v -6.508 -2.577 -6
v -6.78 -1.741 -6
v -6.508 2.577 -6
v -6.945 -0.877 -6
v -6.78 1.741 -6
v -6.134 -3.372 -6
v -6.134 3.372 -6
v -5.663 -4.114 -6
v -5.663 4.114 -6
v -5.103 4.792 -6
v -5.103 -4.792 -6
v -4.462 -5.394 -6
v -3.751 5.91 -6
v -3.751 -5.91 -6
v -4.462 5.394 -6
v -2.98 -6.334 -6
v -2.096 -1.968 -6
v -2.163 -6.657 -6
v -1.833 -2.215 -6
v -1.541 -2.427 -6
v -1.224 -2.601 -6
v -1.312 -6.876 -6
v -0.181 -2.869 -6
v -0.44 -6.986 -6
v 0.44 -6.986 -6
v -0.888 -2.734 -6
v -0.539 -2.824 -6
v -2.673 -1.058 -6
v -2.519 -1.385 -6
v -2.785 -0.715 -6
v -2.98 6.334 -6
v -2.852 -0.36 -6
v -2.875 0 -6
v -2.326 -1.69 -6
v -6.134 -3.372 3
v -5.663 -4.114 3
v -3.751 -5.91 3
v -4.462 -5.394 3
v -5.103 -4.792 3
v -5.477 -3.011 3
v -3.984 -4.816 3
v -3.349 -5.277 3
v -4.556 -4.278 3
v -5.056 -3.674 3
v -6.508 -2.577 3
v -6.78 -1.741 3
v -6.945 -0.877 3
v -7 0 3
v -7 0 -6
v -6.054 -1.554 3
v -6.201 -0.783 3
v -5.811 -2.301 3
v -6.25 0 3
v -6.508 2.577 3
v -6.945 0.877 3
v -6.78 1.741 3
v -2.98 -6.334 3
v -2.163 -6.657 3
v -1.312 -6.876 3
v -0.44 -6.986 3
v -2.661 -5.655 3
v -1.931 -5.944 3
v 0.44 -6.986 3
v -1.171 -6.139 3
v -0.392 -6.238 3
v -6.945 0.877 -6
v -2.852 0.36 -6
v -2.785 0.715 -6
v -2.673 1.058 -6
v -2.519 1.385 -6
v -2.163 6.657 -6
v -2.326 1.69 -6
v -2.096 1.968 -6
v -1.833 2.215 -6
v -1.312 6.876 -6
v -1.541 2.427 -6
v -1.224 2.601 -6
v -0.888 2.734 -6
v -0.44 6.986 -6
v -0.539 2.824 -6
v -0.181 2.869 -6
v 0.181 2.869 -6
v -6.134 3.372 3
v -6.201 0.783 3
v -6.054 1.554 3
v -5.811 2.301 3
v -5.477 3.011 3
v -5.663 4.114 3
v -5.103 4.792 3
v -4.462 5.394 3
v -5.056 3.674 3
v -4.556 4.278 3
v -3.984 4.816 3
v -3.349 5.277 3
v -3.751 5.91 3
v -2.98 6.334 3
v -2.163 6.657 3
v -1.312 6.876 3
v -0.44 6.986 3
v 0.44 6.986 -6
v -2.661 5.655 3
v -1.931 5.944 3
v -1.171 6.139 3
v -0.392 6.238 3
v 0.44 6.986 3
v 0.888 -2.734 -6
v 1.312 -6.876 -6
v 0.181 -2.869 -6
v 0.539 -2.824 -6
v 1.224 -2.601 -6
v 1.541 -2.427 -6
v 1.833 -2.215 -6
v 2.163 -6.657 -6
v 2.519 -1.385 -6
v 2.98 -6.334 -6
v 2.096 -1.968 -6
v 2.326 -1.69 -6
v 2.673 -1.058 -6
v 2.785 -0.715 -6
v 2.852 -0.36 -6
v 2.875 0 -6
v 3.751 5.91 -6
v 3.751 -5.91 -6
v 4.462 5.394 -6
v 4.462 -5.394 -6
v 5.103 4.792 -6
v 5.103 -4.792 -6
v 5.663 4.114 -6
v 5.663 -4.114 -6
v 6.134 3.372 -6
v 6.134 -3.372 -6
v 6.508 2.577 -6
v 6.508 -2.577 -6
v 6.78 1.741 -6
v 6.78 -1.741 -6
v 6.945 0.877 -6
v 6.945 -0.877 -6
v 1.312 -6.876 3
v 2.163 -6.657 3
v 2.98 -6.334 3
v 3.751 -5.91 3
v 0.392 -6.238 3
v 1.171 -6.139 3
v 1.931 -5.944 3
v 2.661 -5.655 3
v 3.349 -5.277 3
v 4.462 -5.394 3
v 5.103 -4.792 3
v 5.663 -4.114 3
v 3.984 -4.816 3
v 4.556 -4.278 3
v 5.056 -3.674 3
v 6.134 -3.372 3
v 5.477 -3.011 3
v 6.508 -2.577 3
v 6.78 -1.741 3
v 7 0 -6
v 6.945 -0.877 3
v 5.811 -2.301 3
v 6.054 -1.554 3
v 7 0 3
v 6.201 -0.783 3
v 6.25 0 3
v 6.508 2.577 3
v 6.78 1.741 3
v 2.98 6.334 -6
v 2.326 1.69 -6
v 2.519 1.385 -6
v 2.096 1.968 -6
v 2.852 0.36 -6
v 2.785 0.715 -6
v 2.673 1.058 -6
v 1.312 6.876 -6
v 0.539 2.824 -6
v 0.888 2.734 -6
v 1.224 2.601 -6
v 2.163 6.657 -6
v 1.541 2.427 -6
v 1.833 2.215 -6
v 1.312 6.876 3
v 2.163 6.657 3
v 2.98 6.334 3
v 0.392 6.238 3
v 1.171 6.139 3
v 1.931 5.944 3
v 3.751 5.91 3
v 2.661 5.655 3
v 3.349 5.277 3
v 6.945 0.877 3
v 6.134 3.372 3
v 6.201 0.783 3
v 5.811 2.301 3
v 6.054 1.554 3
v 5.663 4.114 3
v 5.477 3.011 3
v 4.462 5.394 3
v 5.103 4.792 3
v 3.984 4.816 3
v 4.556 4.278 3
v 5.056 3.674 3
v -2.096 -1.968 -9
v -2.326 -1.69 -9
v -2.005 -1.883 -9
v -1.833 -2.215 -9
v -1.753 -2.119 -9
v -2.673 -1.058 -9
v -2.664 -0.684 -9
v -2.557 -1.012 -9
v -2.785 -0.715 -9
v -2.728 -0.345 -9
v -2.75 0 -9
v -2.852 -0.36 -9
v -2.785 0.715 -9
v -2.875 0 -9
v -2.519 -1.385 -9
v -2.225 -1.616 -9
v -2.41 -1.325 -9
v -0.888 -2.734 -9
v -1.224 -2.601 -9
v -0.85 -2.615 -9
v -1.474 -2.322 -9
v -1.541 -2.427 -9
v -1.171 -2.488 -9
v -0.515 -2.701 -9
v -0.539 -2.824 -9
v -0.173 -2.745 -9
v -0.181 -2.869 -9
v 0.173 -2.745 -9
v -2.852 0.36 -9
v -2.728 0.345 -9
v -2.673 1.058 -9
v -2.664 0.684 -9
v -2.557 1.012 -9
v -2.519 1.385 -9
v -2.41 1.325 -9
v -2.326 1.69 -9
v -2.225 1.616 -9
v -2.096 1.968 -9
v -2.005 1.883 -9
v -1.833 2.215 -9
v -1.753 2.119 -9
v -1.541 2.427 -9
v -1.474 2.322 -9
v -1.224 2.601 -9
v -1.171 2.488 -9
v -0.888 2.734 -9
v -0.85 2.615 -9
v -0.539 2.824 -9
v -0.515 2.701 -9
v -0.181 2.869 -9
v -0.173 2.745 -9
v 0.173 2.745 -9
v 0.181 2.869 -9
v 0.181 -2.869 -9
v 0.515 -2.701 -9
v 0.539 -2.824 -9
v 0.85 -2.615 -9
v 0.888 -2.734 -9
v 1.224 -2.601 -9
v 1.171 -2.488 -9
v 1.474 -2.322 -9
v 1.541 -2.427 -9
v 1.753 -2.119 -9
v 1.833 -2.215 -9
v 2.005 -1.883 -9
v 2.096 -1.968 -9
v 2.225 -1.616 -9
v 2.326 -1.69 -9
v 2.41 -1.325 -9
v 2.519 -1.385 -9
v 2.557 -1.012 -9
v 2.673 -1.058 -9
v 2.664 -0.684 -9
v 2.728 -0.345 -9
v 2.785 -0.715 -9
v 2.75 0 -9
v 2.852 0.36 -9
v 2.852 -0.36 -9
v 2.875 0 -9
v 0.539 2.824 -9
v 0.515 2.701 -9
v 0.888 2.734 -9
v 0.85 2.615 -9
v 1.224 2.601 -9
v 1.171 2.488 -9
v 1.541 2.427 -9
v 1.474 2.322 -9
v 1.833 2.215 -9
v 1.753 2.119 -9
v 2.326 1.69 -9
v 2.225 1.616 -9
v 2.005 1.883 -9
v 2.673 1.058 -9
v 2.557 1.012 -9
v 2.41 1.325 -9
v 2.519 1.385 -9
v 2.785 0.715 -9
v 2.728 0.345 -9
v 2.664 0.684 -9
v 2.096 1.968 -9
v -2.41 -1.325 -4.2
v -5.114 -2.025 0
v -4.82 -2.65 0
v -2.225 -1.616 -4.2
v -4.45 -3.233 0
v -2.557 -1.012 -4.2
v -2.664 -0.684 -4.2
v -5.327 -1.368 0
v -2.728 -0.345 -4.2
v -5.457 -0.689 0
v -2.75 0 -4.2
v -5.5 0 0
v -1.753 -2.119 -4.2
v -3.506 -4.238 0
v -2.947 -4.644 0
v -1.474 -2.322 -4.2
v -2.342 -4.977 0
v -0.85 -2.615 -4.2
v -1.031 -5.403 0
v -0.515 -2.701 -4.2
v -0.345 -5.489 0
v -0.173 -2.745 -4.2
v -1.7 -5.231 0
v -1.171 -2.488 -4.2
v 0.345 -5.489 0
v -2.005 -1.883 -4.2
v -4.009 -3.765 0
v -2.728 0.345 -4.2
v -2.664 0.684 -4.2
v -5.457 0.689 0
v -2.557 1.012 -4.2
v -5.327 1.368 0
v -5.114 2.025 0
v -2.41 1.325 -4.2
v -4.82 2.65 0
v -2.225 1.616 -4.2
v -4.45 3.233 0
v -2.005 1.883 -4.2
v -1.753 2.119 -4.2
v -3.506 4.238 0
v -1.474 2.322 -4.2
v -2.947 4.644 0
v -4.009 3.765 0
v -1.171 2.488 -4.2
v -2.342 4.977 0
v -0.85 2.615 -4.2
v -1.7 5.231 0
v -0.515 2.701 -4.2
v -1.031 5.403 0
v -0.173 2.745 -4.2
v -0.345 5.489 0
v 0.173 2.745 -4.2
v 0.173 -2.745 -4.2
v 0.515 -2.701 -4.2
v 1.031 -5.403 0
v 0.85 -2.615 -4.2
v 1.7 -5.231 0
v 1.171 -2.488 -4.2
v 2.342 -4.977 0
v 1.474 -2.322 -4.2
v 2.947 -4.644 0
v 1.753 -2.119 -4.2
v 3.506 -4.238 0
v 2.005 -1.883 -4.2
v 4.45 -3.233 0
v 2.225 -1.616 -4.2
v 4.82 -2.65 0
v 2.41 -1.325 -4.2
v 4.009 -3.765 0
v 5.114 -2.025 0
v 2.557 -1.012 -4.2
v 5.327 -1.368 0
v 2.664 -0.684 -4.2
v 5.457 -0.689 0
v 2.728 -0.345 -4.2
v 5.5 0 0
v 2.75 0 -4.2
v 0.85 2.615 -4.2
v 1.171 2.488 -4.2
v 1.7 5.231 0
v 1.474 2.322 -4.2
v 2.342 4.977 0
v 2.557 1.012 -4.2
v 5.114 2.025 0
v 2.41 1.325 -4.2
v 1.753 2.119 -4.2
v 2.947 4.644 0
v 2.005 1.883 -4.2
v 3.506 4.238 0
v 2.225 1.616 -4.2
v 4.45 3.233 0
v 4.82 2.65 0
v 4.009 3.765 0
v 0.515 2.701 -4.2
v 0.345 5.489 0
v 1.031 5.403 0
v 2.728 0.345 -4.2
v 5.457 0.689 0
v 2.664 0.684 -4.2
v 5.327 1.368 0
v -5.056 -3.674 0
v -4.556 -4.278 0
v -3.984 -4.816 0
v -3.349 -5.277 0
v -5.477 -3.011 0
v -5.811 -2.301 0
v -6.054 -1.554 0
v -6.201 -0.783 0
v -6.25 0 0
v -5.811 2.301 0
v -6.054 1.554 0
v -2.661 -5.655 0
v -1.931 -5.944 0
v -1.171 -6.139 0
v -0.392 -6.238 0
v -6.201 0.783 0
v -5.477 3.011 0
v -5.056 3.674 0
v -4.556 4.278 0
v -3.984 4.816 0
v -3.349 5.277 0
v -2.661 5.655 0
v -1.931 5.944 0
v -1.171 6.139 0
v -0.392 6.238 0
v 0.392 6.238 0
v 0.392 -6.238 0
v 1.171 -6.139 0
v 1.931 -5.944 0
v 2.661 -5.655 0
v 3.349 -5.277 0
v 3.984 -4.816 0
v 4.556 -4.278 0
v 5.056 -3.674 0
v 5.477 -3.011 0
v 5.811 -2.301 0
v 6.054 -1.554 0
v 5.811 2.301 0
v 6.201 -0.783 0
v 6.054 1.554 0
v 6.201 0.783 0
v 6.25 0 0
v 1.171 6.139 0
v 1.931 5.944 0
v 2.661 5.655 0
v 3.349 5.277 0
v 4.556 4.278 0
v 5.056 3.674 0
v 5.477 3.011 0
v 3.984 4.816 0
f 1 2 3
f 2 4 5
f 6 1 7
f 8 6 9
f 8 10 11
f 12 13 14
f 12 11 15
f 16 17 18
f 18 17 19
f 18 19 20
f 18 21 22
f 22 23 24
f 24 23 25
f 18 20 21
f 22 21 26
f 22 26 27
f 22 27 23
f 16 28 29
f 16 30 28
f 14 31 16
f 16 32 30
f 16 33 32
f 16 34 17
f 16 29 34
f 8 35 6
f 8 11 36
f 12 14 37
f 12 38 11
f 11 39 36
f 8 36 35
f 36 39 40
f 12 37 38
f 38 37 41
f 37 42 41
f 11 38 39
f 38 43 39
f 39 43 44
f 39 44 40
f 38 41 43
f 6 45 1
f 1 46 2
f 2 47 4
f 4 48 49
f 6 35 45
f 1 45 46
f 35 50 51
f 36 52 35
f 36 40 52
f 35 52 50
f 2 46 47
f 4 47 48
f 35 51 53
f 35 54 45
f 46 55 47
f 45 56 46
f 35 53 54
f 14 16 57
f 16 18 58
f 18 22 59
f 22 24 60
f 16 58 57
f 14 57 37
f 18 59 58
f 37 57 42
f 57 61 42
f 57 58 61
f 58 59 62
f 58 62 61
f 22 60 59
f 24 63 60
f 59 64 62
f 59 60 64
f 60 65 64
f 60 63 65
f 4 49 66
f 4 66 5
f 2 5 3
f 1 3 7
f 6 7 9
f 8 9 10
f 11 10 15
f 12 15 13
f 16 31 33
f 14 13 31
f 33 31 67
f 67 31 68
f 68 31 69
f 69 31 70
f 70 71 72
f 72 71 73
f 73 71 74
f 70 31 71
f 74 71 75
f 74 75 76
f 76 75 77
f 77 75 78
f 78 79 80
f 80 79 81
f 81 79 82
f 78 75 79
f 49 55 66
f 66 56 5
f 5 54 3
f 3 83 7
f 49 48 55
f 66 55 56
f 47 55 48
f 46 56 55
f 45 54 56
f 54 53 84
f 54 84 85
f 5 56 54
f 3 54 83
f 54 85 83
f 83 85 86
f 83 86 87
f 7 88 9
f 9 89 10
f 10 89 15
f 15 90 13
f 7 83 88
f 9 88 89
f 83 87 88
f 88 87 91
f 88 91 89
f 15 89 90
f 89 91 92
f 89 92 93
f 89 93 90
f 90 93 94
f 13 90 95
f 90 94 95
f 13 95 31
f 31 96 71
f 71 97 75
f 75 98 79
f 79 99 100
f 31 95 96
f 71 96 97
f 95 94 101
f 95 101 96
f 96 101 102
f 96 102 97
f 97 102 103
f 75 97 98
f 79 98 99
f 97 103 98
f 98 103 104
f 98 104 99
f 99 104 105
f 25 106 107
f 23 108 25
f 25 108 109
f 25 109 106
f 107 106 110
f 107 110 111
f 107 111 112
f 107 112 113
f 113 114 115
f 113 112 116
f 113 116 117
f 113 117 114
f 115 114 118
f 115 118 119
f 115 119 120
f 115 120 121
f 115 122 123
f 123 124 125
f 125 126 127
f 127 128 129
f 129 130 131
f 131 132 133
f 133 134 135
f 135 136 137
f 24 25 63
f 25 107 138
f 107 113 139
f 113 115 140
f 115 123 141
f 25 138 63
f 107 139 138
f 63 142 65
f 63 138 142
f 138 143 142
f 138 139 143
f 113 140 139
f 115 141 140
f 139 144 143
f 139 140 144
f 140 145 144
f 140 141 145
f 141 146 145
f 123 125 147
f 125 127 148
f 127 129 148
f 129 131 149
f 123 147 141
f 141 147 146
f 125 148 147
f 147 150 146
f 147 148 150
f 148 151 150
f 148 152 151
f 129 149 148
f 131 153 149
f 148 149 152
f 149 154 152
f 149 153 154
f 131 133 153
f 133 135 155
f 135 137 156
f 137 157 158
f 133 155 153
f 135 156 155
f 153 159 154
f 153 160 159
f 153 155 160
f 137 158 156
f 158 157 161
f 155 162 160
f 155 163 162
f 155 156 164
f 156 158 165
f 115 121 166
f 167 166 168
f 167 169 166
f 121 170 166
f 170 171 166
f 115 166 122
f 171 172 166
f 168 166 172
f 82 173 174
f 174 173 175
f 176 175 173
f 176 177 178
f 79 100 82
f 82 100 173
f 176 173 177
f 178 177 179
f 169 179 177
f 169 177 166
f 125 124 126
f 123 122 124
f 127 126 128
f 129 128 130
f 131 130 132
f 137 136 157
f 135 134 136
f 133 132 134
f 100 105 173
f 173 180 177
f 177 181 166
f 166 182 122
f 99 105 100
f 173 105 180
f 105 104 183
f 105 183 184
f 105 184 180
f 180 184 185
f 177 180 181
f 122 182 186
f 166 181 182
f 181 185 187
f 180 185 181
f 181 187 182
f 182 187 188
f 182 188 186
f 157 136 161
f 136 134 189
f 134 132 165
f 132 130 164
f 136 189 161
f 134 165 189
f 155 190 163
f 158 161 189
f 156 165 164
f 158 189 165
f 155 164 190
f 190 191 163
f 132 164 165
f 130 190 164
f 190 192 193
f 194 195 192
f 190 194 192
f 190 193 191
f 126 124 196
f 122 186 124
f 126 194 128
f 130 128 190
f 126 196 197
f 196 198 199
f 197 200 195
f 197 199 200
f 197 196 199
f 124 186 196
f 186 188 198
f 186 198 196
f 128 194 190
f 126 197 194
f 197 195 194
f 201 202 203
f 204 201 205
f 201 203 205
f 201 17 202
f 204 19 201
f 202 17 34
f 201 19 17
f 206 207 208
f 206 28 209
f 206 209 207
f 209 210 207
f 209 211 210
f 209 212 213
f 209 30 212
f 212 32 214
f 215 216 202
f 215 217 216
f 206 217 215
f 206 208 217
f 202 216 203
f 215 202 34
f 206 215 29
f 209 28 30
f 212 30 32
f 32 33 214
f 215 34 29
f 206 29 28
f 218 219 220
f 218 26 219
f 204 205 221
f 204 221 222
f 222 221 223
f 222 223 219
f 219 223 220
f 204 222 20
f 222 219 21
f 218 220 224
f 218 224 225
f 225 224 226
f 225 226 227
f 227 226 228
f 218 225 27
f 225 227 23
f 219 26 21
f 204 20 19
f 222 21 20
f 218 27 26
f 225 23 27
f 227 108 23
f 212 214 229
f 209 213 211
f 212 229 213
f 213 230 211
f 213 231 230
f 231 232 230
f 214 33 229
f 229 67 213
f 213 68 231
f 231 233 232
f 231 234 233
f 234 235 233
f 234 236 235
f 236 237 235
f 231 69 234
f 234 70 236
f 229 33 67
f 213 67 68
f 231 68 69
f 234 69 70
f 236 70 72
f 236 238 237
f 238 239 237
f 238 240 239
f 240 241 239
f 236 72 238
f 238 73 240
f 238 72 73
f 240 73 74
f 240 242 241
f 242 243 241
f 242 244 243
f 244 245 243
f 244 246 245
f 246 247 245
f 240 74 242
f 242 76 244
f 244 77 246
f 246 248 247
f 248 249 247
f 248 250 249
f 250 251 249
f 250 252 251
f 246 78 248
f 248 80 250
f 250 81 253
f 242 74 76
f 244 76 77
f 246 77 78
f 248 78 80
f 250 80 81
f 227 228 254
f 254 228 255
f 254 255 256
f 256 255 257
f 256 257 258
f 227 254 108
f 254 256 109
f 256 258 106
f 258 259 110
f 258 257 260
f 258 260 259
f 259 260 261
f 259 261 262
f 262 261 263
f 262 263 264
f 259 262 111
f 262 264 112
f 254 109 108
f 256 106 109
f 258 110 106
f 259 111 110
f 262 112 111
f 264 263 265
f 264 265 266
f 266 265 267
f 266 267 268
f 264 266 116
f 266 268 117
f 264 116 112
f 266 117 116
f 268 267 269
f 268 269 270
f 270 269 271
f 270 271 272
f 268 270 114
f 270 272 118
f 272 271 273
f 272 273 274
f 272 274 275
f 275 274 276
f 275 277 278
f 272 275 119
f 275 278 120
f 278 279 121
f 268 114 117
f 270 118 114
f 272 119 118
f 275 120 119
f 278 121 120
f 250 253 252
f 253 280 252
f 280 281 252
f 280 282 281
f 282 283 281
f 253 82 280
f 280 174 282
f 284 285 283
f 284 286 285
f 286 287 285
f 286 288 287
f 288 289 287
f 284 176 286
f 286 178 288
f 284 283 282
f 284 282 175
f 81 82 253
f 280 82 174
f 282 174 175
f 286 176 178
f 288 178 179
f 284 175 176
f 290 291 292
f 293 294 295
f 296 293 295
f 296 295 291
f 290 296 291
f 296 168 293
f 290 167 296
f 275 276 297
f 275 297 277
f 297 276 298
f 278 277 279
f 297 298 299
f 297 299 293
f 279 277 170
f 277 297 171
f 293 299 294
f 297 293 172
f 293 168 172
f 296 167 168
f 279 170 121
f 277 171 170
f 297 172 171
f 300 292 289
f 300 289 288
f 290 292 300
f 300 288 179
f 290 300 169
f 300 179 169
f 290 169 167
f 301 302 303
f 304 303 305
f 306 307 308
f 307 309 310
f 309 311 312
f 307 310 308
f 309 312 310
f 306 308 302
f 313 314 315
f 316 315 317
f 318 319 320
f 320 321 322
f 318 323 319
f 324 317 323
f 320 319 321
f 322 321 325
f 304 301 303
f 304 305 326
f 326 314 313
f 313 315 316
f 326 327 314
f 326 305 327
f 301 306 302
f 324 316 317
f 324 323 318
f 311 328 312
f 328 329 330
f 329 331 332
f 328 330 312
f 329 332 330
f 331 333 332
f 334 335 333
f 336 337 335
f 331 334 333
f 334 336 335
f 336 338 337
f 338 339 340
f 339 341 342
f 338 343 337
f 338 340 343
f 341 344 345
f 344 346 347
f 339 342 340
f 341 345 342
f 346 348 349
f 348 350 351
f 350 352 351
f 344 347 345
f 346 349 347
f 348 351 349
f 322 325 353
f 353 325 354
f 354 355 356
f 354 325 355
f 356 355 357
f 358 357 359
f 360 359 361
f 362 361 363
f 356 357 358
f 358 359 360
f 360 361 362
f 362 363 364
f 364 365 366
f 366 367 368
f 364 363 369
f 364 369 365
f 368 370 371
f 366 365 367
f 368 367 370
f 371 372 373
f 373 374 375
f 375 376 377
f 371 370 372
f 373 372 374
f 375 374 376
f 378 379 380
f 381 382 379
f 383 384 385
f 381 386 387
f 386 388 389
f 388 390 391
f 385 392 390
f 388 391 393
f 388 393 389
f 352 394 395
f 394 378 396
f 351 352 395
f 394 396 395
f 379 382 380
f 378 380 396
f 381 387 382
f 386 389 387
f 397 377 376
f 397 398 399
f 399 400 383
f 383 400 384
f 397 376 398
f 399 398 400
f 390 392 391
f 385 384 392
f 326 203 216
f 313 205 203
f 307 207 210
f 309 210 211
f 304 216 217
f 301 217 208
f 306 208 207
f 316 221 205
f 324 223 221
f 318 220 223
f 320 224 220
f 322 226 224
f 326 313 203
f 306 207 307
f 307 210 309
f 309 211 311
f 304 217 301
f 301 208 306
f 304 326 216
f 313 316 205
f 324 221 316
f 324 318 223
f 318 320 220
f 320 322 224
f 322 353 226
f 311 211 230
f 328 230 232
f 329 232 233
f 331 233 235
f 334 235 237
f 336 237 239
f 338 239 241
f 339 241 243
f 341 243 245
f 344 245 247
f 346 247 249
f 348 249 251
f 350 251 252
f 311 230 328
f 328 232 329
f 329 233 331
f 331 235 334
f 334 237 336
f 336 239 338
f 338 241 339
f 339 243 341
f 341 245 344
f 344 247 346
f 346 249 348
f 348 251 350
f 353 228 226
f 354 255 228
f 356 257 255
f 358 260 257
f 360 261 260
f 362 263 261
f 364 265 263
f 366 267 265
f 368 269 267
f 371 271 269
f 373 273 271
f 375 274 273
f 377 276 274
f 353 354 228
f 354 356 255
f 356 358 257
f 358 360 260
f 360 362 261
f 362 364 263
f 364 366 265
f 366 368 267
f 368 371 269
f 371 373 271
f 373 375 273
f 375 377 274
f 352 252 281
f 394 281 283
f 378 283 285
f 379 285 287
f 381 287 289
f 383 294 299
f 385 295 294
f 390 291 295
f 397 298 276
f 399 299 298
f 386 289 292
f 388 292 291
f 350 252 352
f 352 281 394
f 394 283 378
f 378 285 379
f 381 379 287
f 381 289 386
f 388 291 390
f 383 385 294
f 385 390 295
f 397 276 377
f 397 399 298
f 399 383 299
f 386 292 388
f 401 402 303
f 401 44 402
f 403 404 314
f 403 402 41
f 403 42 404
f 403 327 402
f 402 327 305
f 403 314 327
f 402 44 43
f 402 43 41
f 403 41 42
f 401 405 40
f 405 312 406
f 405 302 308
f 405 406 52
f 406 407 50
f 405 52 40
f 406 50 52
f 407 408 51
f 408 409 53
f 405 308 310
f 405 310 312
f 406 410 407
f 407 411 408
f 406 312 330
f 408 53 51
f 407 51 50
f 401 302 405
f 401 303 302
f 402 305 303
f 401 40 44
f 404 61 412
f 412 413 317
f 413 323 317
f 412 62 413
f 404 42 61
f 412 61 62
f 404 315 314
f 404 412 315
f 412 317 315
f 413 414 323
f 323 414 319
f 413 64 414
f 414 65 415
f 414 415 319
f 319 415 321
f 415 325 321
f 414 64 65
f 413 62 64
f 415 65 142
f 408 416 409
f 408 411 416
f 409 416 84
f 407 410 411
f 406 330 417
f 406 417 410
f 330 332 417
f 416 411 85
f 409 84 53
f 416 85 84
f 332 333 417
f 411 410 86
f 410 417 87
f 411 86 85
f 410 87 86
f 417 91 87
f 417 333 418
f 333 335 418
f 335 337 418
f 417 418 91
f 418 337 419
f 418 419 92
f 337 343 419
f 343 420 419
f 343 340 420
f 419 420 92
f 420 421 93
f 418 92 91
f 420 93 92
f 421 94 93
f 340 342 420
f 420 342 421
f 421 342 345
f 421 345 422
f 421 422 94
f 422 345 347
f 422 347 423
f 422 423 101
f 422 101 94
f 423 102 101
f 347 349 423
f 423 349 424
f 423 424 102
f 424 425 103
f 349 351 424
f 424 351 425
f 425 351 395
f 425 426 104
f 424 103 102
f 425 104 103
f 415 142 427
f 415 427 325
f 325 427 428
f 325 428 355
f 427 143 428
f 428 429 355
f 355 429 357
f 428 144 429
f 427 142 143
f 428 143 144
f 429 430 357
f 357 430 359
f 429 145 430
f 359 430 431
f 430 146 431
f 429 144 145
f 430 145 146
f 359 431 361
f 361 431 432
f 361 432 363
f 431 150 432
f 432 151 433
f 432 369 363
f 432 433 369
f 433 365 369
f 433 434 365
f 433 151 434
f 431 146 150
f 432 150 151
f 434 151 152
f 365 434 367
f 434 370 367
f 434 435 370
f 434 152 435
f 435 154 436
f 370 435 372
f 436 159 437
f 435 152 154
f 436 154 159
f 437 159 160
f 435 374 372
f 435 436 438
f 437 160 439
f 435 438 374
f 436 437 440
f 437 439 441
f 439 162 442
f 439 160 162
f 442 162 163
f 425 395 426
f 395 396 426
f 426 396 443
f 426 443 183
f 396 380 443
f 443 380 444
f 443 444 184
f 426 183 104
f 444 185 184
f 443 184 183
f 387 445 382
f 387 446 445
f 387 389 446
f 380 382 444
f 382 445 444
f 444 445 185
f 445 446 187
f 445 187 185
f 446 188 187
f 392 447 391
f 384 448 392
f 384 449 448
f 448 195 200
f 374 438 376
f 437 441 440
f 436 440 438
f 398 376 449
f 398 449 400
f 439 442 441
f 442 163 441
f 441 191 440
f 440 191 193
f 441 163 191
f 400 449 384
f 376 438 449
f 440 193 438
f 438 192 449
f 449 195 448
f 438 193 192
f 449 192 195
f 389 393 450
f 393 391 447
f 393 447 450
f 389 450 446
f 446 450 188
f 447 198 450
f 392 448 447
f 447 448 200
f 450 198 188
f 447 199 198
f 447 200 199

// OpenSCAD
$fn = 50;


difference() {
	union() {
		translate(v = [0, 0, -6.0000000000]) {
			cylinder(h = 9, r = 7.0000000000);
		}
		#translate(v = [0, 0, -9.0000000000]) {
			cylinder(h = 9, r = 2.8750000000);
		}
	}
	union() {
		translate(v = [0, 0, 0]) {
			rotate(a = [0, 0, 0]) {
				difference() {
					union() {
						translate(v = [0, 0, -9.0000000000]) {
							cylinder(h = 9, r = 2.2500000000);
						}
						translate(v = [0, 0, -4.2000000000]) {
							cylinder(h = 4.2000000000, r1 = 2.7500000000, r2 = 5.5000000000);
						}
						translate(v = [0, 0, -9.0000000000]) {
							cylinder(h = 9, r = 2.7500000000);
						}
						translate(v = [0, 0, -9.0000000000]) {
							cylinder(h = 9, r = 2.2500000000);
						}
					}
					union();
				}
			}
		}
		#cylinder(h = 3, r = 6.2500000000);
	}
}
